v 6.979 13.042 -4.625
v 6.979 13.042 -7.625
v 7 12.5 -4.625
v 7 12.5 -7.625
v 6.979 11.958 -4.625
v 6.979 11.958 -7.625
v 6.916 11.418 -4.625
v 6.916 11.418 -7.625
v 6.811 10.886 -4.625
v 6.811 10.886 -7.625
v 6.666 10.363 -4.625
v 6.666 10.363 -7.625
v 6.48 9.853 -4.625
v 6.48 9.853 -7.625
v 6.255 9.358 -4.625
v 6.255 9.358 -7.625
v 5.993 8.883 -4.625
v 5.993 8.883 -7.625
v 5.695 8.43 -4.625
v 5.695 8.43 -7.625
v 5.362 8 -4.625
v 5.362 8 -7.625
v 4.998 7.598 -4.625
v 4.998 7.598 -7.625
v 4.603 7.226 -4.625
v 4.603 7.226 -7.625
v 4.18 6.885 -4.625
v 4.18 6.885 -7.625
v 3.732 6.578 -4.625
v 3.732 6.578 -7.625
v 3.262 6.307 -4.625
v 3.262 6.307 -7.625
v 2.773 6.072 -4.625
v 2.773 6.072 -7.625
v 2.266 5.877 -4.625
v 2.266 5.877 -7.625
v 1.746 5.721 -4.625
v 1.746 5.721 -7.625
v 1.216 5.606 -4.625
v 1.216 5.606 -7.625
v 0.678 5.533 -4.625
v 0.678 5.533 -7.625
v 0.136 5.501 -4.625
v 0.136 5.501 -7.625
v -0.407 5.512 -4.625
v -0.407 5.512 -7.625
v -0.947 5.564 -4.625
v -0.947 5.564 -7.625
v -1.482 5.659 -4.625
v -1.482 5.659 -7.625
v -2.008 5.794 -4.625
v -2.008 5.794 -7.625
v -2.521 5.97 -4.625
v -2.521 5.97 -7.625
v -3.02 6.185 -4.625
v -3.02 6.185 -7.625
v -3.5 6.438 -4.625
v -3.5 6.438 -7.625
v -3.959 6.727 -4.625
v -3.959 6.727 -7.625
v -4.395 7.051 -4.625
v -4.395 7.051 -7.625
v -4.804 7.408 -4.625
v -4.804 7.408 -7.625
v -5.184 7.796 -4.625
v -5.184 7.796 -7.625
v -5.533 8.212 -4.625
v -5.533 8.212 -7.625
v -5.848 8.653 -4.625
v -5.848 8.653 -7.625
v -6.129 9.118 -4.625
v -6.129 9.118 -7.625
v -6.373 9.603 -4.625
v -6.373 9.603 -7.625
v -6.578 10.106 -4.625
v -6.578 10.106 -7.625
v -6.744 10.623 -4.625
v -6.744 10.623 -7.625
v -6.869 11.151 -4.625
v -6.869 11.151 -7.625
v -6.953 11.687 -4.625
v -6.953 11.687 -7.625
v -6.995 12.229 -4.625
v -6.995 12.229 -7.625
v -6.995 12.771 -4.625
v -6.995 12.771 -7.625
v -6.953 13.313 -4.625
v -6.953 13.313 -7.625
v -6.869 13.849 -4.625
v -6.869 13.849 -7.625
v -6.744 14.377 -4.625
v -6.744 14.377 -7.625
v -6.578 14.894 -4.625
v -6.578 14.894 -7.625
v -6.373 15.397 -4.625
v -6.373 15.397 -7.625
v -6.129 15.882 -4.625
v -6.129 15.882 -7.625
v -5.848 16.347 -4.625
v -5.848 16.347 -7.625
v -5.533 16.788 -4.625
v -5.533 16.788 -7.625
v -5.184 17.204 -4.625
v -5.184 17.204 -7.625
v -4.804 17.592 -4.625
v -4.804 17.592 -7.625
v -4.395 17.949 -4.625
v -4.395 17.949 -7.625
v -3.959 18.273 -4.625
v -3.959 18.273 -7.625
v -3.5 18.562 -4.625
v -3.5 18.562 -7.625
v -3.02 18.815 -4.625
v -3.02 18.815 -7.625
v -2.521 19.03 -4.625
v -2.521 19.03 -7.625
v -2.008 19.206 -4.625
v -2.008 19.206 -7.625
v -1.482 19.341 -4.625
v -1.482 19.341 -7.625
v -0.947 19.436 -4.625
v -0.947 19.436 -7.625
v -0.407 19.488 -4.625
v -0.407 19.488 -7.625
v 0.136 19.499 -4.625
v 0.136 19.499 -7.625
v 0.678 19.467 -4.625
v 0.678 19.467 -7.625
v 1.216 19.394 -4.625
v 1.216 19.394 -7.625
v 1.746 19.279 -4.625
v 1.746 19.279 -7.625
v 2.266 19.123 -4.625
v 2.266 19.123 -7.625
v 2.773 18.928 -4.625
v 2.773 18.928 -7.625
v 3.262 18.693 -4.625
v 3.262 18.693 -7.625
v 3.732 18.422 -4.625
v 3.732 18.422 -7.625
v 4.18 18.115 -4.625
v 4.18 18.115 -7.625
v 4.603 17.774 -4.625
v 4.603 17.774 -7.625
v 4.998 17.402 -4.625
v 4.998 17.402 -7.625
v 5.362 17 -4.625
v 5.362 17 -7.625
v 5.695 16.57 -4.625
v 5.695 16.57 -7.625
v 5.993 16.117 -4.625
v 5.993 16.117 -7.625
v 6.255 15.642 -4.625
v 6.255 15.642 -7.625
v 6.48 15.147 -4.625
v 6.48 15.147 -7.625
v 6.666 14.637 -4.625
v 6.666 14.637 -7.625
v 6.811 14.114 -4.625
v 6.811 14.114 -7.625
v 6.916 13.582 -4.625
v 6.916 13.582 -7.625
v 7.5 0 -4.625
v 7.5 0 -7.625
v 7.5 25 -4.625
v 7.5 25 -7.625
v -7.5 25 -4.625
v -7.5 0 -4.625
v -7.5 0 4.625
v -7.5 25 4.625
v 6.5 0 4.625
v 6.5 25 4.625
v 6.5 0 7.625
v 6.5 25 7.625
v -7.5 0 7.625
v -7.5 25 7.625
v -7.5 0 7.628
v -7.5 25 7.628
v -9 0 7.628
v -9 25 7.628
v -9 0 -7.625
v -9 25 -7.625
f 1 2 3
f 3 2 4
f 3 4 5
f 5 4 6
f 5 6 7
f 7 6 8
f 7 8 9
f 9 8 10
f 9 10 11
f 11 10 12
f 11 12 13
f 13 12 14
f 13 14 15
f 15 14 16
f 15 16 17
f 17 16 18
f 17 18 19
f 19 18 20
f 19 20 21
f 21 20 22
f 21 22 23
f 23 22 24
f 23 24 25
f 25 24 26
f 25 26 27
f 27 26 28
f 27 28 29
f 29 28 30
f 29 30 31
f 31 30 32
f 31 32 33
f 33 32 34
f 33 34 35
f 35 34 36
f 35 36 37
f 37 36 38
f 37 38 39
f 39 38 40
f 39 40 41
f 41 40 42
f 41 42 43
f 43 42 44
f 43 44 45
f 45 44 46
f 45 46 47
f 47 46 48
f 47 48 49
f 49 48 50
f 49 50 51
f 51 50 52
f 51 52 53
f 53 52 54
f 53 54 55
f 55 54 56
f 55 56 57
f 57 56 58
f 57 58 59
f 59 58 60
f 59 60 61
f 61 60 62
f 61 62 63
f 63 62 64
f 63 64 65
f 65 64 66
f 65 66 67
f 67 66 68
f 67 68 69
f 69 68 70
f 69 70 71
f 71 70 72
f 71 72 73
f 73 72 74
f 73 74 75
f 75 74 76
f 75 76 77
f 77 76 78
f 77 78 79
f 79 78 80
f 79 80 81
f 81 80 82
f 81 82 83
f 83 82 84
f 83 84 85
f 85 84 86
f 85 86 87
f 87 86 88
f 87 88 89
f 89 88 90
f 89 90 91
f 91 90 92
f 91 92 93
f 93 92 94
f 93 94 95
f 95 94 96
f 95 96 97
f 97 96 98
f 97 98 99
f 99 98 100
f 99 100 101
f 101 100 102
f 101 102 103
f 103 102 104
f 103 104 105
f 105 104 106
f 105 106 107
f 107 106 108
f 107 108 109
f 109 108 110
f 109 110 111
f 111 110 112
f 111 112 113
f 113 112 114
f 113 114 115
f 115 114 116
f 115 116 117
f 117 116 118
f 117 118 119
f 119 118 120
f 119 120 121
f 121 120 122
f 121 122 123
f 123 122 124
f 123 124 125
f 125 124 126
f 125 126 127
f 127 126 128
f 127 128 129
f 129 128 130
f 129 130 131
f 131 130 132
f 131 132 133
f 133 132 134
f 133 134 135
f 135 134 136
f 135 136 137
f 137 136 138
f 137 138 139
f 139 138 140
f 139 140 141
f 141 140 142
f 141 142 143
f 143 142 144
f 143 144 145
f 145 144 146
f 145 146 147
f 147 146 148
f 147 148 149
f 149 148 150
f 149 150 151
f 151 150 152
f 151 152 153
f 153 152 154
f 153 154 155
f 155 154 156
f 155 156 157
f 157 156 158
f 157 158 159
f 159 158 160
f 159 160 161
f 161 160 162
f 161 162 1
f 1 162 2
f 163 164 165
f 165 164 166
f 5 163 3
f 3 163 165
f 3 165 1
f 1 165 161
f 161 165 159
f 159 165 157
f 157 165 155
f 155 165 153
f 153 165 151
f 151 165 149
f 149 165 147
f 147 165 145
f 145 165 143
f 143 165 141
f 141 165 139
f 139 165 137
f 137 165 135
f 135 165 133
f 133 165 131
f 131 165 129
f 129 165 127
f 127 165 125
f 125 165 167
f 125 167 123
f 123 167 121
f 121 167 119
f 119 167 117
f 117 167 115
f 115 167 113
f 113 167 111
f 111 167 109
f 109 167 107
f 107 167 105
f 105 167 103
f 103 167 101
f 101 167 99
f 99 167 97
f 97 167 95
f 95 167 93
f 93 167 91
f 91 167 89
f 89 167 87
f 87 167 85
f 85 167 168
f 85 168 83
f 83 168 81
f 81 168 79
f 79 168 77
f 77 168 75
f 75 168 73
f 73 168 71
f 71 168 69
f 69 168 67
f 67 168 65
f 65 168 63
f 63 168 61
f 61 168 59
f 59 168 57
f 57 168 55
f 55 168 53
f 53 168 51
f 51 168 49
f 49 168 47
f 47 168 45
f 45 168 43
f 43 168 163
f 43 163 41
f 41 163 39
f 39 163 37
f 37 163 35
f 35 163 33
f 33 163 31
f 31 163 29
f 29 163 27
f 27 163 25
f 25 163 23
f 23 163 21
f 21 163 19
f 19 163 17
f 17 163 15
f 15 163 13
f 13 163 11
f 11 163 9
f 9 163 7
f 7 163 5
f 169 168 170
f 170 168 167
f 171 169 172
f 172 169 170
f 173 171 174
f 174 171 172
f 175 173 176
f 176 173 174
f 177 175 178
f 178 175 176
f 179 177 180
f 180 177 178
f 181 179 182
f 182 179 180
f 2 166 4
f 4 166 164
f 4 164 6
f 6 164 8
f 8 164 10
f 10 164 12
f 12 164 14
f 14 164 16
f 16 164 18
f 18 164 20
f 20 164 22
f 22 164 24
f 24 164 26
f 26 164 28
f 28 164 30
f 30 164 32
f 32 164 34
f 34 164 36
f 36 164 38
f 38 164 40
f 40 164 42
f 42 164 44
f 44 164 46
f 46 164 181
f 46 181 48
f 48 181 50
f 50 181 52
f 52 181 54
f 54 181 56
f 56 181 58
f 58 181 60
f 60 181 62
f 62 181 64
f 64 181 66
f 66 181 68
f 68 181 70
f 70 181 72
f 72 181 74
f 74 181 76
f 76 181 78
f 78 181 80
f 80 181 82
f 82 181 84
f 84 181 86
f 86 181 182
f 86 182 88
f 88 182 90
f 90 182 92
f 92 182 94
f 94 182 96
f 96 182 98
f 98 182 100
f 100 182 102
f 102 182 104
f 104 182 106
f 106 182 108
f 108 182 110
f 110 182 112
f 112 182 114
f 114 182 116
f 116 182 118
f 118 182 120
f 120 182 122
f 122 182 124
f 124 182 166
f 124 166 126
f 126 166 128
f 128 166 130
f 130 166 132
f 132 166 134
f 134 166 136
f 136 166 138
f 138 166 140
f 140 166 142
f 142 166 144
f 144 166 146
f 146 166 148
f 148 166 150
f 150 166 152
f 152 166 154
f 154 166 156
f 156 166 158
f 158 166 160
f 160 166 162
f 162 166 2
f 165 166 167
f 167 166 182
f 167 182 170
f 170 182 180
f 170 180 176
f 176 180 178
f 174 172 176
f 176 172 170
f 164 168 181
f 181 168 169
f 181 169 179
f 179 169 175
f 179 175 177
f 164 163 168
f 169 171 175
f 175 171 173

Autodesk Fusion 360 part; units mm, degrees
sketch "Sketch1" plane through (0, 0, 0) normal (0, 1, 0) x (1, 0, 0)
  line L0 (-7.5, 7.625) -> (7.5, 7.625)
  line L1 (7.5, 7.625) -> (7.5, 4.625)
  line L2 (7.5, 4.625) -> (-7.5, 4.625)
  line L3 (-7.5, 4.625) -> (-7.5, 7.625)
  line L4 (-7.5, -4.625) -> (6.5, -4.625)
  line L5 (6.5, -4.625) -> (6.5, -7.625)
  line L6 (6.5, -7.625) -> (-7.5, -7.625)
  line L7 (-7.5, -7.625) -> (-7.5, -4.625)
  line L8 (-7.5, 7.625) -> (-9, 7.625)
  line L9 (-9, 7.625) -> (-9, -7.6278)
  line L10 (-9, -7.6278) -> (-7.5, -7.6278)
  line L11 (-7.5, -7.6278) -> (-7.5, 7.625)
  dimension "d3" = 4.625
  dimension "d4" = 4.625
  dimension "d5" = 15
  dimension "d6" = 7.5
  dimension "d7" = 14
  dimension "d9" = 7.5
  dimension "d10" = 1.5
extrude "Extrude1" add sketch "Sketch1" along normal blind 25
sketch "Sketch2" plane through (0, 0, -7.625) normal (0, 0, -1) x (-1, 0, 0)
  line L0 (-7.5, 0) -> (9, 0)
  line L1 (9, 0) -> (9, 25)
  line L2 (9, 25) -> (-7.5, 25)
  line L3 (-7.5, 25) -> (-7.5, 0)
  circle A0 centre (0, 12.5) radius 7
  dimension "d13" = 9
  dimension "d14" = 14
  dimension "d15" = 12.5
extrude "Extrude2" cut sketch "Sketch2" against normal blind 9 contours A0
equation "d3 = ( 9.25 / 2 ) * 1 mm"
equation "d4 = ( 9.25 / 2 ) * 1 mm"
